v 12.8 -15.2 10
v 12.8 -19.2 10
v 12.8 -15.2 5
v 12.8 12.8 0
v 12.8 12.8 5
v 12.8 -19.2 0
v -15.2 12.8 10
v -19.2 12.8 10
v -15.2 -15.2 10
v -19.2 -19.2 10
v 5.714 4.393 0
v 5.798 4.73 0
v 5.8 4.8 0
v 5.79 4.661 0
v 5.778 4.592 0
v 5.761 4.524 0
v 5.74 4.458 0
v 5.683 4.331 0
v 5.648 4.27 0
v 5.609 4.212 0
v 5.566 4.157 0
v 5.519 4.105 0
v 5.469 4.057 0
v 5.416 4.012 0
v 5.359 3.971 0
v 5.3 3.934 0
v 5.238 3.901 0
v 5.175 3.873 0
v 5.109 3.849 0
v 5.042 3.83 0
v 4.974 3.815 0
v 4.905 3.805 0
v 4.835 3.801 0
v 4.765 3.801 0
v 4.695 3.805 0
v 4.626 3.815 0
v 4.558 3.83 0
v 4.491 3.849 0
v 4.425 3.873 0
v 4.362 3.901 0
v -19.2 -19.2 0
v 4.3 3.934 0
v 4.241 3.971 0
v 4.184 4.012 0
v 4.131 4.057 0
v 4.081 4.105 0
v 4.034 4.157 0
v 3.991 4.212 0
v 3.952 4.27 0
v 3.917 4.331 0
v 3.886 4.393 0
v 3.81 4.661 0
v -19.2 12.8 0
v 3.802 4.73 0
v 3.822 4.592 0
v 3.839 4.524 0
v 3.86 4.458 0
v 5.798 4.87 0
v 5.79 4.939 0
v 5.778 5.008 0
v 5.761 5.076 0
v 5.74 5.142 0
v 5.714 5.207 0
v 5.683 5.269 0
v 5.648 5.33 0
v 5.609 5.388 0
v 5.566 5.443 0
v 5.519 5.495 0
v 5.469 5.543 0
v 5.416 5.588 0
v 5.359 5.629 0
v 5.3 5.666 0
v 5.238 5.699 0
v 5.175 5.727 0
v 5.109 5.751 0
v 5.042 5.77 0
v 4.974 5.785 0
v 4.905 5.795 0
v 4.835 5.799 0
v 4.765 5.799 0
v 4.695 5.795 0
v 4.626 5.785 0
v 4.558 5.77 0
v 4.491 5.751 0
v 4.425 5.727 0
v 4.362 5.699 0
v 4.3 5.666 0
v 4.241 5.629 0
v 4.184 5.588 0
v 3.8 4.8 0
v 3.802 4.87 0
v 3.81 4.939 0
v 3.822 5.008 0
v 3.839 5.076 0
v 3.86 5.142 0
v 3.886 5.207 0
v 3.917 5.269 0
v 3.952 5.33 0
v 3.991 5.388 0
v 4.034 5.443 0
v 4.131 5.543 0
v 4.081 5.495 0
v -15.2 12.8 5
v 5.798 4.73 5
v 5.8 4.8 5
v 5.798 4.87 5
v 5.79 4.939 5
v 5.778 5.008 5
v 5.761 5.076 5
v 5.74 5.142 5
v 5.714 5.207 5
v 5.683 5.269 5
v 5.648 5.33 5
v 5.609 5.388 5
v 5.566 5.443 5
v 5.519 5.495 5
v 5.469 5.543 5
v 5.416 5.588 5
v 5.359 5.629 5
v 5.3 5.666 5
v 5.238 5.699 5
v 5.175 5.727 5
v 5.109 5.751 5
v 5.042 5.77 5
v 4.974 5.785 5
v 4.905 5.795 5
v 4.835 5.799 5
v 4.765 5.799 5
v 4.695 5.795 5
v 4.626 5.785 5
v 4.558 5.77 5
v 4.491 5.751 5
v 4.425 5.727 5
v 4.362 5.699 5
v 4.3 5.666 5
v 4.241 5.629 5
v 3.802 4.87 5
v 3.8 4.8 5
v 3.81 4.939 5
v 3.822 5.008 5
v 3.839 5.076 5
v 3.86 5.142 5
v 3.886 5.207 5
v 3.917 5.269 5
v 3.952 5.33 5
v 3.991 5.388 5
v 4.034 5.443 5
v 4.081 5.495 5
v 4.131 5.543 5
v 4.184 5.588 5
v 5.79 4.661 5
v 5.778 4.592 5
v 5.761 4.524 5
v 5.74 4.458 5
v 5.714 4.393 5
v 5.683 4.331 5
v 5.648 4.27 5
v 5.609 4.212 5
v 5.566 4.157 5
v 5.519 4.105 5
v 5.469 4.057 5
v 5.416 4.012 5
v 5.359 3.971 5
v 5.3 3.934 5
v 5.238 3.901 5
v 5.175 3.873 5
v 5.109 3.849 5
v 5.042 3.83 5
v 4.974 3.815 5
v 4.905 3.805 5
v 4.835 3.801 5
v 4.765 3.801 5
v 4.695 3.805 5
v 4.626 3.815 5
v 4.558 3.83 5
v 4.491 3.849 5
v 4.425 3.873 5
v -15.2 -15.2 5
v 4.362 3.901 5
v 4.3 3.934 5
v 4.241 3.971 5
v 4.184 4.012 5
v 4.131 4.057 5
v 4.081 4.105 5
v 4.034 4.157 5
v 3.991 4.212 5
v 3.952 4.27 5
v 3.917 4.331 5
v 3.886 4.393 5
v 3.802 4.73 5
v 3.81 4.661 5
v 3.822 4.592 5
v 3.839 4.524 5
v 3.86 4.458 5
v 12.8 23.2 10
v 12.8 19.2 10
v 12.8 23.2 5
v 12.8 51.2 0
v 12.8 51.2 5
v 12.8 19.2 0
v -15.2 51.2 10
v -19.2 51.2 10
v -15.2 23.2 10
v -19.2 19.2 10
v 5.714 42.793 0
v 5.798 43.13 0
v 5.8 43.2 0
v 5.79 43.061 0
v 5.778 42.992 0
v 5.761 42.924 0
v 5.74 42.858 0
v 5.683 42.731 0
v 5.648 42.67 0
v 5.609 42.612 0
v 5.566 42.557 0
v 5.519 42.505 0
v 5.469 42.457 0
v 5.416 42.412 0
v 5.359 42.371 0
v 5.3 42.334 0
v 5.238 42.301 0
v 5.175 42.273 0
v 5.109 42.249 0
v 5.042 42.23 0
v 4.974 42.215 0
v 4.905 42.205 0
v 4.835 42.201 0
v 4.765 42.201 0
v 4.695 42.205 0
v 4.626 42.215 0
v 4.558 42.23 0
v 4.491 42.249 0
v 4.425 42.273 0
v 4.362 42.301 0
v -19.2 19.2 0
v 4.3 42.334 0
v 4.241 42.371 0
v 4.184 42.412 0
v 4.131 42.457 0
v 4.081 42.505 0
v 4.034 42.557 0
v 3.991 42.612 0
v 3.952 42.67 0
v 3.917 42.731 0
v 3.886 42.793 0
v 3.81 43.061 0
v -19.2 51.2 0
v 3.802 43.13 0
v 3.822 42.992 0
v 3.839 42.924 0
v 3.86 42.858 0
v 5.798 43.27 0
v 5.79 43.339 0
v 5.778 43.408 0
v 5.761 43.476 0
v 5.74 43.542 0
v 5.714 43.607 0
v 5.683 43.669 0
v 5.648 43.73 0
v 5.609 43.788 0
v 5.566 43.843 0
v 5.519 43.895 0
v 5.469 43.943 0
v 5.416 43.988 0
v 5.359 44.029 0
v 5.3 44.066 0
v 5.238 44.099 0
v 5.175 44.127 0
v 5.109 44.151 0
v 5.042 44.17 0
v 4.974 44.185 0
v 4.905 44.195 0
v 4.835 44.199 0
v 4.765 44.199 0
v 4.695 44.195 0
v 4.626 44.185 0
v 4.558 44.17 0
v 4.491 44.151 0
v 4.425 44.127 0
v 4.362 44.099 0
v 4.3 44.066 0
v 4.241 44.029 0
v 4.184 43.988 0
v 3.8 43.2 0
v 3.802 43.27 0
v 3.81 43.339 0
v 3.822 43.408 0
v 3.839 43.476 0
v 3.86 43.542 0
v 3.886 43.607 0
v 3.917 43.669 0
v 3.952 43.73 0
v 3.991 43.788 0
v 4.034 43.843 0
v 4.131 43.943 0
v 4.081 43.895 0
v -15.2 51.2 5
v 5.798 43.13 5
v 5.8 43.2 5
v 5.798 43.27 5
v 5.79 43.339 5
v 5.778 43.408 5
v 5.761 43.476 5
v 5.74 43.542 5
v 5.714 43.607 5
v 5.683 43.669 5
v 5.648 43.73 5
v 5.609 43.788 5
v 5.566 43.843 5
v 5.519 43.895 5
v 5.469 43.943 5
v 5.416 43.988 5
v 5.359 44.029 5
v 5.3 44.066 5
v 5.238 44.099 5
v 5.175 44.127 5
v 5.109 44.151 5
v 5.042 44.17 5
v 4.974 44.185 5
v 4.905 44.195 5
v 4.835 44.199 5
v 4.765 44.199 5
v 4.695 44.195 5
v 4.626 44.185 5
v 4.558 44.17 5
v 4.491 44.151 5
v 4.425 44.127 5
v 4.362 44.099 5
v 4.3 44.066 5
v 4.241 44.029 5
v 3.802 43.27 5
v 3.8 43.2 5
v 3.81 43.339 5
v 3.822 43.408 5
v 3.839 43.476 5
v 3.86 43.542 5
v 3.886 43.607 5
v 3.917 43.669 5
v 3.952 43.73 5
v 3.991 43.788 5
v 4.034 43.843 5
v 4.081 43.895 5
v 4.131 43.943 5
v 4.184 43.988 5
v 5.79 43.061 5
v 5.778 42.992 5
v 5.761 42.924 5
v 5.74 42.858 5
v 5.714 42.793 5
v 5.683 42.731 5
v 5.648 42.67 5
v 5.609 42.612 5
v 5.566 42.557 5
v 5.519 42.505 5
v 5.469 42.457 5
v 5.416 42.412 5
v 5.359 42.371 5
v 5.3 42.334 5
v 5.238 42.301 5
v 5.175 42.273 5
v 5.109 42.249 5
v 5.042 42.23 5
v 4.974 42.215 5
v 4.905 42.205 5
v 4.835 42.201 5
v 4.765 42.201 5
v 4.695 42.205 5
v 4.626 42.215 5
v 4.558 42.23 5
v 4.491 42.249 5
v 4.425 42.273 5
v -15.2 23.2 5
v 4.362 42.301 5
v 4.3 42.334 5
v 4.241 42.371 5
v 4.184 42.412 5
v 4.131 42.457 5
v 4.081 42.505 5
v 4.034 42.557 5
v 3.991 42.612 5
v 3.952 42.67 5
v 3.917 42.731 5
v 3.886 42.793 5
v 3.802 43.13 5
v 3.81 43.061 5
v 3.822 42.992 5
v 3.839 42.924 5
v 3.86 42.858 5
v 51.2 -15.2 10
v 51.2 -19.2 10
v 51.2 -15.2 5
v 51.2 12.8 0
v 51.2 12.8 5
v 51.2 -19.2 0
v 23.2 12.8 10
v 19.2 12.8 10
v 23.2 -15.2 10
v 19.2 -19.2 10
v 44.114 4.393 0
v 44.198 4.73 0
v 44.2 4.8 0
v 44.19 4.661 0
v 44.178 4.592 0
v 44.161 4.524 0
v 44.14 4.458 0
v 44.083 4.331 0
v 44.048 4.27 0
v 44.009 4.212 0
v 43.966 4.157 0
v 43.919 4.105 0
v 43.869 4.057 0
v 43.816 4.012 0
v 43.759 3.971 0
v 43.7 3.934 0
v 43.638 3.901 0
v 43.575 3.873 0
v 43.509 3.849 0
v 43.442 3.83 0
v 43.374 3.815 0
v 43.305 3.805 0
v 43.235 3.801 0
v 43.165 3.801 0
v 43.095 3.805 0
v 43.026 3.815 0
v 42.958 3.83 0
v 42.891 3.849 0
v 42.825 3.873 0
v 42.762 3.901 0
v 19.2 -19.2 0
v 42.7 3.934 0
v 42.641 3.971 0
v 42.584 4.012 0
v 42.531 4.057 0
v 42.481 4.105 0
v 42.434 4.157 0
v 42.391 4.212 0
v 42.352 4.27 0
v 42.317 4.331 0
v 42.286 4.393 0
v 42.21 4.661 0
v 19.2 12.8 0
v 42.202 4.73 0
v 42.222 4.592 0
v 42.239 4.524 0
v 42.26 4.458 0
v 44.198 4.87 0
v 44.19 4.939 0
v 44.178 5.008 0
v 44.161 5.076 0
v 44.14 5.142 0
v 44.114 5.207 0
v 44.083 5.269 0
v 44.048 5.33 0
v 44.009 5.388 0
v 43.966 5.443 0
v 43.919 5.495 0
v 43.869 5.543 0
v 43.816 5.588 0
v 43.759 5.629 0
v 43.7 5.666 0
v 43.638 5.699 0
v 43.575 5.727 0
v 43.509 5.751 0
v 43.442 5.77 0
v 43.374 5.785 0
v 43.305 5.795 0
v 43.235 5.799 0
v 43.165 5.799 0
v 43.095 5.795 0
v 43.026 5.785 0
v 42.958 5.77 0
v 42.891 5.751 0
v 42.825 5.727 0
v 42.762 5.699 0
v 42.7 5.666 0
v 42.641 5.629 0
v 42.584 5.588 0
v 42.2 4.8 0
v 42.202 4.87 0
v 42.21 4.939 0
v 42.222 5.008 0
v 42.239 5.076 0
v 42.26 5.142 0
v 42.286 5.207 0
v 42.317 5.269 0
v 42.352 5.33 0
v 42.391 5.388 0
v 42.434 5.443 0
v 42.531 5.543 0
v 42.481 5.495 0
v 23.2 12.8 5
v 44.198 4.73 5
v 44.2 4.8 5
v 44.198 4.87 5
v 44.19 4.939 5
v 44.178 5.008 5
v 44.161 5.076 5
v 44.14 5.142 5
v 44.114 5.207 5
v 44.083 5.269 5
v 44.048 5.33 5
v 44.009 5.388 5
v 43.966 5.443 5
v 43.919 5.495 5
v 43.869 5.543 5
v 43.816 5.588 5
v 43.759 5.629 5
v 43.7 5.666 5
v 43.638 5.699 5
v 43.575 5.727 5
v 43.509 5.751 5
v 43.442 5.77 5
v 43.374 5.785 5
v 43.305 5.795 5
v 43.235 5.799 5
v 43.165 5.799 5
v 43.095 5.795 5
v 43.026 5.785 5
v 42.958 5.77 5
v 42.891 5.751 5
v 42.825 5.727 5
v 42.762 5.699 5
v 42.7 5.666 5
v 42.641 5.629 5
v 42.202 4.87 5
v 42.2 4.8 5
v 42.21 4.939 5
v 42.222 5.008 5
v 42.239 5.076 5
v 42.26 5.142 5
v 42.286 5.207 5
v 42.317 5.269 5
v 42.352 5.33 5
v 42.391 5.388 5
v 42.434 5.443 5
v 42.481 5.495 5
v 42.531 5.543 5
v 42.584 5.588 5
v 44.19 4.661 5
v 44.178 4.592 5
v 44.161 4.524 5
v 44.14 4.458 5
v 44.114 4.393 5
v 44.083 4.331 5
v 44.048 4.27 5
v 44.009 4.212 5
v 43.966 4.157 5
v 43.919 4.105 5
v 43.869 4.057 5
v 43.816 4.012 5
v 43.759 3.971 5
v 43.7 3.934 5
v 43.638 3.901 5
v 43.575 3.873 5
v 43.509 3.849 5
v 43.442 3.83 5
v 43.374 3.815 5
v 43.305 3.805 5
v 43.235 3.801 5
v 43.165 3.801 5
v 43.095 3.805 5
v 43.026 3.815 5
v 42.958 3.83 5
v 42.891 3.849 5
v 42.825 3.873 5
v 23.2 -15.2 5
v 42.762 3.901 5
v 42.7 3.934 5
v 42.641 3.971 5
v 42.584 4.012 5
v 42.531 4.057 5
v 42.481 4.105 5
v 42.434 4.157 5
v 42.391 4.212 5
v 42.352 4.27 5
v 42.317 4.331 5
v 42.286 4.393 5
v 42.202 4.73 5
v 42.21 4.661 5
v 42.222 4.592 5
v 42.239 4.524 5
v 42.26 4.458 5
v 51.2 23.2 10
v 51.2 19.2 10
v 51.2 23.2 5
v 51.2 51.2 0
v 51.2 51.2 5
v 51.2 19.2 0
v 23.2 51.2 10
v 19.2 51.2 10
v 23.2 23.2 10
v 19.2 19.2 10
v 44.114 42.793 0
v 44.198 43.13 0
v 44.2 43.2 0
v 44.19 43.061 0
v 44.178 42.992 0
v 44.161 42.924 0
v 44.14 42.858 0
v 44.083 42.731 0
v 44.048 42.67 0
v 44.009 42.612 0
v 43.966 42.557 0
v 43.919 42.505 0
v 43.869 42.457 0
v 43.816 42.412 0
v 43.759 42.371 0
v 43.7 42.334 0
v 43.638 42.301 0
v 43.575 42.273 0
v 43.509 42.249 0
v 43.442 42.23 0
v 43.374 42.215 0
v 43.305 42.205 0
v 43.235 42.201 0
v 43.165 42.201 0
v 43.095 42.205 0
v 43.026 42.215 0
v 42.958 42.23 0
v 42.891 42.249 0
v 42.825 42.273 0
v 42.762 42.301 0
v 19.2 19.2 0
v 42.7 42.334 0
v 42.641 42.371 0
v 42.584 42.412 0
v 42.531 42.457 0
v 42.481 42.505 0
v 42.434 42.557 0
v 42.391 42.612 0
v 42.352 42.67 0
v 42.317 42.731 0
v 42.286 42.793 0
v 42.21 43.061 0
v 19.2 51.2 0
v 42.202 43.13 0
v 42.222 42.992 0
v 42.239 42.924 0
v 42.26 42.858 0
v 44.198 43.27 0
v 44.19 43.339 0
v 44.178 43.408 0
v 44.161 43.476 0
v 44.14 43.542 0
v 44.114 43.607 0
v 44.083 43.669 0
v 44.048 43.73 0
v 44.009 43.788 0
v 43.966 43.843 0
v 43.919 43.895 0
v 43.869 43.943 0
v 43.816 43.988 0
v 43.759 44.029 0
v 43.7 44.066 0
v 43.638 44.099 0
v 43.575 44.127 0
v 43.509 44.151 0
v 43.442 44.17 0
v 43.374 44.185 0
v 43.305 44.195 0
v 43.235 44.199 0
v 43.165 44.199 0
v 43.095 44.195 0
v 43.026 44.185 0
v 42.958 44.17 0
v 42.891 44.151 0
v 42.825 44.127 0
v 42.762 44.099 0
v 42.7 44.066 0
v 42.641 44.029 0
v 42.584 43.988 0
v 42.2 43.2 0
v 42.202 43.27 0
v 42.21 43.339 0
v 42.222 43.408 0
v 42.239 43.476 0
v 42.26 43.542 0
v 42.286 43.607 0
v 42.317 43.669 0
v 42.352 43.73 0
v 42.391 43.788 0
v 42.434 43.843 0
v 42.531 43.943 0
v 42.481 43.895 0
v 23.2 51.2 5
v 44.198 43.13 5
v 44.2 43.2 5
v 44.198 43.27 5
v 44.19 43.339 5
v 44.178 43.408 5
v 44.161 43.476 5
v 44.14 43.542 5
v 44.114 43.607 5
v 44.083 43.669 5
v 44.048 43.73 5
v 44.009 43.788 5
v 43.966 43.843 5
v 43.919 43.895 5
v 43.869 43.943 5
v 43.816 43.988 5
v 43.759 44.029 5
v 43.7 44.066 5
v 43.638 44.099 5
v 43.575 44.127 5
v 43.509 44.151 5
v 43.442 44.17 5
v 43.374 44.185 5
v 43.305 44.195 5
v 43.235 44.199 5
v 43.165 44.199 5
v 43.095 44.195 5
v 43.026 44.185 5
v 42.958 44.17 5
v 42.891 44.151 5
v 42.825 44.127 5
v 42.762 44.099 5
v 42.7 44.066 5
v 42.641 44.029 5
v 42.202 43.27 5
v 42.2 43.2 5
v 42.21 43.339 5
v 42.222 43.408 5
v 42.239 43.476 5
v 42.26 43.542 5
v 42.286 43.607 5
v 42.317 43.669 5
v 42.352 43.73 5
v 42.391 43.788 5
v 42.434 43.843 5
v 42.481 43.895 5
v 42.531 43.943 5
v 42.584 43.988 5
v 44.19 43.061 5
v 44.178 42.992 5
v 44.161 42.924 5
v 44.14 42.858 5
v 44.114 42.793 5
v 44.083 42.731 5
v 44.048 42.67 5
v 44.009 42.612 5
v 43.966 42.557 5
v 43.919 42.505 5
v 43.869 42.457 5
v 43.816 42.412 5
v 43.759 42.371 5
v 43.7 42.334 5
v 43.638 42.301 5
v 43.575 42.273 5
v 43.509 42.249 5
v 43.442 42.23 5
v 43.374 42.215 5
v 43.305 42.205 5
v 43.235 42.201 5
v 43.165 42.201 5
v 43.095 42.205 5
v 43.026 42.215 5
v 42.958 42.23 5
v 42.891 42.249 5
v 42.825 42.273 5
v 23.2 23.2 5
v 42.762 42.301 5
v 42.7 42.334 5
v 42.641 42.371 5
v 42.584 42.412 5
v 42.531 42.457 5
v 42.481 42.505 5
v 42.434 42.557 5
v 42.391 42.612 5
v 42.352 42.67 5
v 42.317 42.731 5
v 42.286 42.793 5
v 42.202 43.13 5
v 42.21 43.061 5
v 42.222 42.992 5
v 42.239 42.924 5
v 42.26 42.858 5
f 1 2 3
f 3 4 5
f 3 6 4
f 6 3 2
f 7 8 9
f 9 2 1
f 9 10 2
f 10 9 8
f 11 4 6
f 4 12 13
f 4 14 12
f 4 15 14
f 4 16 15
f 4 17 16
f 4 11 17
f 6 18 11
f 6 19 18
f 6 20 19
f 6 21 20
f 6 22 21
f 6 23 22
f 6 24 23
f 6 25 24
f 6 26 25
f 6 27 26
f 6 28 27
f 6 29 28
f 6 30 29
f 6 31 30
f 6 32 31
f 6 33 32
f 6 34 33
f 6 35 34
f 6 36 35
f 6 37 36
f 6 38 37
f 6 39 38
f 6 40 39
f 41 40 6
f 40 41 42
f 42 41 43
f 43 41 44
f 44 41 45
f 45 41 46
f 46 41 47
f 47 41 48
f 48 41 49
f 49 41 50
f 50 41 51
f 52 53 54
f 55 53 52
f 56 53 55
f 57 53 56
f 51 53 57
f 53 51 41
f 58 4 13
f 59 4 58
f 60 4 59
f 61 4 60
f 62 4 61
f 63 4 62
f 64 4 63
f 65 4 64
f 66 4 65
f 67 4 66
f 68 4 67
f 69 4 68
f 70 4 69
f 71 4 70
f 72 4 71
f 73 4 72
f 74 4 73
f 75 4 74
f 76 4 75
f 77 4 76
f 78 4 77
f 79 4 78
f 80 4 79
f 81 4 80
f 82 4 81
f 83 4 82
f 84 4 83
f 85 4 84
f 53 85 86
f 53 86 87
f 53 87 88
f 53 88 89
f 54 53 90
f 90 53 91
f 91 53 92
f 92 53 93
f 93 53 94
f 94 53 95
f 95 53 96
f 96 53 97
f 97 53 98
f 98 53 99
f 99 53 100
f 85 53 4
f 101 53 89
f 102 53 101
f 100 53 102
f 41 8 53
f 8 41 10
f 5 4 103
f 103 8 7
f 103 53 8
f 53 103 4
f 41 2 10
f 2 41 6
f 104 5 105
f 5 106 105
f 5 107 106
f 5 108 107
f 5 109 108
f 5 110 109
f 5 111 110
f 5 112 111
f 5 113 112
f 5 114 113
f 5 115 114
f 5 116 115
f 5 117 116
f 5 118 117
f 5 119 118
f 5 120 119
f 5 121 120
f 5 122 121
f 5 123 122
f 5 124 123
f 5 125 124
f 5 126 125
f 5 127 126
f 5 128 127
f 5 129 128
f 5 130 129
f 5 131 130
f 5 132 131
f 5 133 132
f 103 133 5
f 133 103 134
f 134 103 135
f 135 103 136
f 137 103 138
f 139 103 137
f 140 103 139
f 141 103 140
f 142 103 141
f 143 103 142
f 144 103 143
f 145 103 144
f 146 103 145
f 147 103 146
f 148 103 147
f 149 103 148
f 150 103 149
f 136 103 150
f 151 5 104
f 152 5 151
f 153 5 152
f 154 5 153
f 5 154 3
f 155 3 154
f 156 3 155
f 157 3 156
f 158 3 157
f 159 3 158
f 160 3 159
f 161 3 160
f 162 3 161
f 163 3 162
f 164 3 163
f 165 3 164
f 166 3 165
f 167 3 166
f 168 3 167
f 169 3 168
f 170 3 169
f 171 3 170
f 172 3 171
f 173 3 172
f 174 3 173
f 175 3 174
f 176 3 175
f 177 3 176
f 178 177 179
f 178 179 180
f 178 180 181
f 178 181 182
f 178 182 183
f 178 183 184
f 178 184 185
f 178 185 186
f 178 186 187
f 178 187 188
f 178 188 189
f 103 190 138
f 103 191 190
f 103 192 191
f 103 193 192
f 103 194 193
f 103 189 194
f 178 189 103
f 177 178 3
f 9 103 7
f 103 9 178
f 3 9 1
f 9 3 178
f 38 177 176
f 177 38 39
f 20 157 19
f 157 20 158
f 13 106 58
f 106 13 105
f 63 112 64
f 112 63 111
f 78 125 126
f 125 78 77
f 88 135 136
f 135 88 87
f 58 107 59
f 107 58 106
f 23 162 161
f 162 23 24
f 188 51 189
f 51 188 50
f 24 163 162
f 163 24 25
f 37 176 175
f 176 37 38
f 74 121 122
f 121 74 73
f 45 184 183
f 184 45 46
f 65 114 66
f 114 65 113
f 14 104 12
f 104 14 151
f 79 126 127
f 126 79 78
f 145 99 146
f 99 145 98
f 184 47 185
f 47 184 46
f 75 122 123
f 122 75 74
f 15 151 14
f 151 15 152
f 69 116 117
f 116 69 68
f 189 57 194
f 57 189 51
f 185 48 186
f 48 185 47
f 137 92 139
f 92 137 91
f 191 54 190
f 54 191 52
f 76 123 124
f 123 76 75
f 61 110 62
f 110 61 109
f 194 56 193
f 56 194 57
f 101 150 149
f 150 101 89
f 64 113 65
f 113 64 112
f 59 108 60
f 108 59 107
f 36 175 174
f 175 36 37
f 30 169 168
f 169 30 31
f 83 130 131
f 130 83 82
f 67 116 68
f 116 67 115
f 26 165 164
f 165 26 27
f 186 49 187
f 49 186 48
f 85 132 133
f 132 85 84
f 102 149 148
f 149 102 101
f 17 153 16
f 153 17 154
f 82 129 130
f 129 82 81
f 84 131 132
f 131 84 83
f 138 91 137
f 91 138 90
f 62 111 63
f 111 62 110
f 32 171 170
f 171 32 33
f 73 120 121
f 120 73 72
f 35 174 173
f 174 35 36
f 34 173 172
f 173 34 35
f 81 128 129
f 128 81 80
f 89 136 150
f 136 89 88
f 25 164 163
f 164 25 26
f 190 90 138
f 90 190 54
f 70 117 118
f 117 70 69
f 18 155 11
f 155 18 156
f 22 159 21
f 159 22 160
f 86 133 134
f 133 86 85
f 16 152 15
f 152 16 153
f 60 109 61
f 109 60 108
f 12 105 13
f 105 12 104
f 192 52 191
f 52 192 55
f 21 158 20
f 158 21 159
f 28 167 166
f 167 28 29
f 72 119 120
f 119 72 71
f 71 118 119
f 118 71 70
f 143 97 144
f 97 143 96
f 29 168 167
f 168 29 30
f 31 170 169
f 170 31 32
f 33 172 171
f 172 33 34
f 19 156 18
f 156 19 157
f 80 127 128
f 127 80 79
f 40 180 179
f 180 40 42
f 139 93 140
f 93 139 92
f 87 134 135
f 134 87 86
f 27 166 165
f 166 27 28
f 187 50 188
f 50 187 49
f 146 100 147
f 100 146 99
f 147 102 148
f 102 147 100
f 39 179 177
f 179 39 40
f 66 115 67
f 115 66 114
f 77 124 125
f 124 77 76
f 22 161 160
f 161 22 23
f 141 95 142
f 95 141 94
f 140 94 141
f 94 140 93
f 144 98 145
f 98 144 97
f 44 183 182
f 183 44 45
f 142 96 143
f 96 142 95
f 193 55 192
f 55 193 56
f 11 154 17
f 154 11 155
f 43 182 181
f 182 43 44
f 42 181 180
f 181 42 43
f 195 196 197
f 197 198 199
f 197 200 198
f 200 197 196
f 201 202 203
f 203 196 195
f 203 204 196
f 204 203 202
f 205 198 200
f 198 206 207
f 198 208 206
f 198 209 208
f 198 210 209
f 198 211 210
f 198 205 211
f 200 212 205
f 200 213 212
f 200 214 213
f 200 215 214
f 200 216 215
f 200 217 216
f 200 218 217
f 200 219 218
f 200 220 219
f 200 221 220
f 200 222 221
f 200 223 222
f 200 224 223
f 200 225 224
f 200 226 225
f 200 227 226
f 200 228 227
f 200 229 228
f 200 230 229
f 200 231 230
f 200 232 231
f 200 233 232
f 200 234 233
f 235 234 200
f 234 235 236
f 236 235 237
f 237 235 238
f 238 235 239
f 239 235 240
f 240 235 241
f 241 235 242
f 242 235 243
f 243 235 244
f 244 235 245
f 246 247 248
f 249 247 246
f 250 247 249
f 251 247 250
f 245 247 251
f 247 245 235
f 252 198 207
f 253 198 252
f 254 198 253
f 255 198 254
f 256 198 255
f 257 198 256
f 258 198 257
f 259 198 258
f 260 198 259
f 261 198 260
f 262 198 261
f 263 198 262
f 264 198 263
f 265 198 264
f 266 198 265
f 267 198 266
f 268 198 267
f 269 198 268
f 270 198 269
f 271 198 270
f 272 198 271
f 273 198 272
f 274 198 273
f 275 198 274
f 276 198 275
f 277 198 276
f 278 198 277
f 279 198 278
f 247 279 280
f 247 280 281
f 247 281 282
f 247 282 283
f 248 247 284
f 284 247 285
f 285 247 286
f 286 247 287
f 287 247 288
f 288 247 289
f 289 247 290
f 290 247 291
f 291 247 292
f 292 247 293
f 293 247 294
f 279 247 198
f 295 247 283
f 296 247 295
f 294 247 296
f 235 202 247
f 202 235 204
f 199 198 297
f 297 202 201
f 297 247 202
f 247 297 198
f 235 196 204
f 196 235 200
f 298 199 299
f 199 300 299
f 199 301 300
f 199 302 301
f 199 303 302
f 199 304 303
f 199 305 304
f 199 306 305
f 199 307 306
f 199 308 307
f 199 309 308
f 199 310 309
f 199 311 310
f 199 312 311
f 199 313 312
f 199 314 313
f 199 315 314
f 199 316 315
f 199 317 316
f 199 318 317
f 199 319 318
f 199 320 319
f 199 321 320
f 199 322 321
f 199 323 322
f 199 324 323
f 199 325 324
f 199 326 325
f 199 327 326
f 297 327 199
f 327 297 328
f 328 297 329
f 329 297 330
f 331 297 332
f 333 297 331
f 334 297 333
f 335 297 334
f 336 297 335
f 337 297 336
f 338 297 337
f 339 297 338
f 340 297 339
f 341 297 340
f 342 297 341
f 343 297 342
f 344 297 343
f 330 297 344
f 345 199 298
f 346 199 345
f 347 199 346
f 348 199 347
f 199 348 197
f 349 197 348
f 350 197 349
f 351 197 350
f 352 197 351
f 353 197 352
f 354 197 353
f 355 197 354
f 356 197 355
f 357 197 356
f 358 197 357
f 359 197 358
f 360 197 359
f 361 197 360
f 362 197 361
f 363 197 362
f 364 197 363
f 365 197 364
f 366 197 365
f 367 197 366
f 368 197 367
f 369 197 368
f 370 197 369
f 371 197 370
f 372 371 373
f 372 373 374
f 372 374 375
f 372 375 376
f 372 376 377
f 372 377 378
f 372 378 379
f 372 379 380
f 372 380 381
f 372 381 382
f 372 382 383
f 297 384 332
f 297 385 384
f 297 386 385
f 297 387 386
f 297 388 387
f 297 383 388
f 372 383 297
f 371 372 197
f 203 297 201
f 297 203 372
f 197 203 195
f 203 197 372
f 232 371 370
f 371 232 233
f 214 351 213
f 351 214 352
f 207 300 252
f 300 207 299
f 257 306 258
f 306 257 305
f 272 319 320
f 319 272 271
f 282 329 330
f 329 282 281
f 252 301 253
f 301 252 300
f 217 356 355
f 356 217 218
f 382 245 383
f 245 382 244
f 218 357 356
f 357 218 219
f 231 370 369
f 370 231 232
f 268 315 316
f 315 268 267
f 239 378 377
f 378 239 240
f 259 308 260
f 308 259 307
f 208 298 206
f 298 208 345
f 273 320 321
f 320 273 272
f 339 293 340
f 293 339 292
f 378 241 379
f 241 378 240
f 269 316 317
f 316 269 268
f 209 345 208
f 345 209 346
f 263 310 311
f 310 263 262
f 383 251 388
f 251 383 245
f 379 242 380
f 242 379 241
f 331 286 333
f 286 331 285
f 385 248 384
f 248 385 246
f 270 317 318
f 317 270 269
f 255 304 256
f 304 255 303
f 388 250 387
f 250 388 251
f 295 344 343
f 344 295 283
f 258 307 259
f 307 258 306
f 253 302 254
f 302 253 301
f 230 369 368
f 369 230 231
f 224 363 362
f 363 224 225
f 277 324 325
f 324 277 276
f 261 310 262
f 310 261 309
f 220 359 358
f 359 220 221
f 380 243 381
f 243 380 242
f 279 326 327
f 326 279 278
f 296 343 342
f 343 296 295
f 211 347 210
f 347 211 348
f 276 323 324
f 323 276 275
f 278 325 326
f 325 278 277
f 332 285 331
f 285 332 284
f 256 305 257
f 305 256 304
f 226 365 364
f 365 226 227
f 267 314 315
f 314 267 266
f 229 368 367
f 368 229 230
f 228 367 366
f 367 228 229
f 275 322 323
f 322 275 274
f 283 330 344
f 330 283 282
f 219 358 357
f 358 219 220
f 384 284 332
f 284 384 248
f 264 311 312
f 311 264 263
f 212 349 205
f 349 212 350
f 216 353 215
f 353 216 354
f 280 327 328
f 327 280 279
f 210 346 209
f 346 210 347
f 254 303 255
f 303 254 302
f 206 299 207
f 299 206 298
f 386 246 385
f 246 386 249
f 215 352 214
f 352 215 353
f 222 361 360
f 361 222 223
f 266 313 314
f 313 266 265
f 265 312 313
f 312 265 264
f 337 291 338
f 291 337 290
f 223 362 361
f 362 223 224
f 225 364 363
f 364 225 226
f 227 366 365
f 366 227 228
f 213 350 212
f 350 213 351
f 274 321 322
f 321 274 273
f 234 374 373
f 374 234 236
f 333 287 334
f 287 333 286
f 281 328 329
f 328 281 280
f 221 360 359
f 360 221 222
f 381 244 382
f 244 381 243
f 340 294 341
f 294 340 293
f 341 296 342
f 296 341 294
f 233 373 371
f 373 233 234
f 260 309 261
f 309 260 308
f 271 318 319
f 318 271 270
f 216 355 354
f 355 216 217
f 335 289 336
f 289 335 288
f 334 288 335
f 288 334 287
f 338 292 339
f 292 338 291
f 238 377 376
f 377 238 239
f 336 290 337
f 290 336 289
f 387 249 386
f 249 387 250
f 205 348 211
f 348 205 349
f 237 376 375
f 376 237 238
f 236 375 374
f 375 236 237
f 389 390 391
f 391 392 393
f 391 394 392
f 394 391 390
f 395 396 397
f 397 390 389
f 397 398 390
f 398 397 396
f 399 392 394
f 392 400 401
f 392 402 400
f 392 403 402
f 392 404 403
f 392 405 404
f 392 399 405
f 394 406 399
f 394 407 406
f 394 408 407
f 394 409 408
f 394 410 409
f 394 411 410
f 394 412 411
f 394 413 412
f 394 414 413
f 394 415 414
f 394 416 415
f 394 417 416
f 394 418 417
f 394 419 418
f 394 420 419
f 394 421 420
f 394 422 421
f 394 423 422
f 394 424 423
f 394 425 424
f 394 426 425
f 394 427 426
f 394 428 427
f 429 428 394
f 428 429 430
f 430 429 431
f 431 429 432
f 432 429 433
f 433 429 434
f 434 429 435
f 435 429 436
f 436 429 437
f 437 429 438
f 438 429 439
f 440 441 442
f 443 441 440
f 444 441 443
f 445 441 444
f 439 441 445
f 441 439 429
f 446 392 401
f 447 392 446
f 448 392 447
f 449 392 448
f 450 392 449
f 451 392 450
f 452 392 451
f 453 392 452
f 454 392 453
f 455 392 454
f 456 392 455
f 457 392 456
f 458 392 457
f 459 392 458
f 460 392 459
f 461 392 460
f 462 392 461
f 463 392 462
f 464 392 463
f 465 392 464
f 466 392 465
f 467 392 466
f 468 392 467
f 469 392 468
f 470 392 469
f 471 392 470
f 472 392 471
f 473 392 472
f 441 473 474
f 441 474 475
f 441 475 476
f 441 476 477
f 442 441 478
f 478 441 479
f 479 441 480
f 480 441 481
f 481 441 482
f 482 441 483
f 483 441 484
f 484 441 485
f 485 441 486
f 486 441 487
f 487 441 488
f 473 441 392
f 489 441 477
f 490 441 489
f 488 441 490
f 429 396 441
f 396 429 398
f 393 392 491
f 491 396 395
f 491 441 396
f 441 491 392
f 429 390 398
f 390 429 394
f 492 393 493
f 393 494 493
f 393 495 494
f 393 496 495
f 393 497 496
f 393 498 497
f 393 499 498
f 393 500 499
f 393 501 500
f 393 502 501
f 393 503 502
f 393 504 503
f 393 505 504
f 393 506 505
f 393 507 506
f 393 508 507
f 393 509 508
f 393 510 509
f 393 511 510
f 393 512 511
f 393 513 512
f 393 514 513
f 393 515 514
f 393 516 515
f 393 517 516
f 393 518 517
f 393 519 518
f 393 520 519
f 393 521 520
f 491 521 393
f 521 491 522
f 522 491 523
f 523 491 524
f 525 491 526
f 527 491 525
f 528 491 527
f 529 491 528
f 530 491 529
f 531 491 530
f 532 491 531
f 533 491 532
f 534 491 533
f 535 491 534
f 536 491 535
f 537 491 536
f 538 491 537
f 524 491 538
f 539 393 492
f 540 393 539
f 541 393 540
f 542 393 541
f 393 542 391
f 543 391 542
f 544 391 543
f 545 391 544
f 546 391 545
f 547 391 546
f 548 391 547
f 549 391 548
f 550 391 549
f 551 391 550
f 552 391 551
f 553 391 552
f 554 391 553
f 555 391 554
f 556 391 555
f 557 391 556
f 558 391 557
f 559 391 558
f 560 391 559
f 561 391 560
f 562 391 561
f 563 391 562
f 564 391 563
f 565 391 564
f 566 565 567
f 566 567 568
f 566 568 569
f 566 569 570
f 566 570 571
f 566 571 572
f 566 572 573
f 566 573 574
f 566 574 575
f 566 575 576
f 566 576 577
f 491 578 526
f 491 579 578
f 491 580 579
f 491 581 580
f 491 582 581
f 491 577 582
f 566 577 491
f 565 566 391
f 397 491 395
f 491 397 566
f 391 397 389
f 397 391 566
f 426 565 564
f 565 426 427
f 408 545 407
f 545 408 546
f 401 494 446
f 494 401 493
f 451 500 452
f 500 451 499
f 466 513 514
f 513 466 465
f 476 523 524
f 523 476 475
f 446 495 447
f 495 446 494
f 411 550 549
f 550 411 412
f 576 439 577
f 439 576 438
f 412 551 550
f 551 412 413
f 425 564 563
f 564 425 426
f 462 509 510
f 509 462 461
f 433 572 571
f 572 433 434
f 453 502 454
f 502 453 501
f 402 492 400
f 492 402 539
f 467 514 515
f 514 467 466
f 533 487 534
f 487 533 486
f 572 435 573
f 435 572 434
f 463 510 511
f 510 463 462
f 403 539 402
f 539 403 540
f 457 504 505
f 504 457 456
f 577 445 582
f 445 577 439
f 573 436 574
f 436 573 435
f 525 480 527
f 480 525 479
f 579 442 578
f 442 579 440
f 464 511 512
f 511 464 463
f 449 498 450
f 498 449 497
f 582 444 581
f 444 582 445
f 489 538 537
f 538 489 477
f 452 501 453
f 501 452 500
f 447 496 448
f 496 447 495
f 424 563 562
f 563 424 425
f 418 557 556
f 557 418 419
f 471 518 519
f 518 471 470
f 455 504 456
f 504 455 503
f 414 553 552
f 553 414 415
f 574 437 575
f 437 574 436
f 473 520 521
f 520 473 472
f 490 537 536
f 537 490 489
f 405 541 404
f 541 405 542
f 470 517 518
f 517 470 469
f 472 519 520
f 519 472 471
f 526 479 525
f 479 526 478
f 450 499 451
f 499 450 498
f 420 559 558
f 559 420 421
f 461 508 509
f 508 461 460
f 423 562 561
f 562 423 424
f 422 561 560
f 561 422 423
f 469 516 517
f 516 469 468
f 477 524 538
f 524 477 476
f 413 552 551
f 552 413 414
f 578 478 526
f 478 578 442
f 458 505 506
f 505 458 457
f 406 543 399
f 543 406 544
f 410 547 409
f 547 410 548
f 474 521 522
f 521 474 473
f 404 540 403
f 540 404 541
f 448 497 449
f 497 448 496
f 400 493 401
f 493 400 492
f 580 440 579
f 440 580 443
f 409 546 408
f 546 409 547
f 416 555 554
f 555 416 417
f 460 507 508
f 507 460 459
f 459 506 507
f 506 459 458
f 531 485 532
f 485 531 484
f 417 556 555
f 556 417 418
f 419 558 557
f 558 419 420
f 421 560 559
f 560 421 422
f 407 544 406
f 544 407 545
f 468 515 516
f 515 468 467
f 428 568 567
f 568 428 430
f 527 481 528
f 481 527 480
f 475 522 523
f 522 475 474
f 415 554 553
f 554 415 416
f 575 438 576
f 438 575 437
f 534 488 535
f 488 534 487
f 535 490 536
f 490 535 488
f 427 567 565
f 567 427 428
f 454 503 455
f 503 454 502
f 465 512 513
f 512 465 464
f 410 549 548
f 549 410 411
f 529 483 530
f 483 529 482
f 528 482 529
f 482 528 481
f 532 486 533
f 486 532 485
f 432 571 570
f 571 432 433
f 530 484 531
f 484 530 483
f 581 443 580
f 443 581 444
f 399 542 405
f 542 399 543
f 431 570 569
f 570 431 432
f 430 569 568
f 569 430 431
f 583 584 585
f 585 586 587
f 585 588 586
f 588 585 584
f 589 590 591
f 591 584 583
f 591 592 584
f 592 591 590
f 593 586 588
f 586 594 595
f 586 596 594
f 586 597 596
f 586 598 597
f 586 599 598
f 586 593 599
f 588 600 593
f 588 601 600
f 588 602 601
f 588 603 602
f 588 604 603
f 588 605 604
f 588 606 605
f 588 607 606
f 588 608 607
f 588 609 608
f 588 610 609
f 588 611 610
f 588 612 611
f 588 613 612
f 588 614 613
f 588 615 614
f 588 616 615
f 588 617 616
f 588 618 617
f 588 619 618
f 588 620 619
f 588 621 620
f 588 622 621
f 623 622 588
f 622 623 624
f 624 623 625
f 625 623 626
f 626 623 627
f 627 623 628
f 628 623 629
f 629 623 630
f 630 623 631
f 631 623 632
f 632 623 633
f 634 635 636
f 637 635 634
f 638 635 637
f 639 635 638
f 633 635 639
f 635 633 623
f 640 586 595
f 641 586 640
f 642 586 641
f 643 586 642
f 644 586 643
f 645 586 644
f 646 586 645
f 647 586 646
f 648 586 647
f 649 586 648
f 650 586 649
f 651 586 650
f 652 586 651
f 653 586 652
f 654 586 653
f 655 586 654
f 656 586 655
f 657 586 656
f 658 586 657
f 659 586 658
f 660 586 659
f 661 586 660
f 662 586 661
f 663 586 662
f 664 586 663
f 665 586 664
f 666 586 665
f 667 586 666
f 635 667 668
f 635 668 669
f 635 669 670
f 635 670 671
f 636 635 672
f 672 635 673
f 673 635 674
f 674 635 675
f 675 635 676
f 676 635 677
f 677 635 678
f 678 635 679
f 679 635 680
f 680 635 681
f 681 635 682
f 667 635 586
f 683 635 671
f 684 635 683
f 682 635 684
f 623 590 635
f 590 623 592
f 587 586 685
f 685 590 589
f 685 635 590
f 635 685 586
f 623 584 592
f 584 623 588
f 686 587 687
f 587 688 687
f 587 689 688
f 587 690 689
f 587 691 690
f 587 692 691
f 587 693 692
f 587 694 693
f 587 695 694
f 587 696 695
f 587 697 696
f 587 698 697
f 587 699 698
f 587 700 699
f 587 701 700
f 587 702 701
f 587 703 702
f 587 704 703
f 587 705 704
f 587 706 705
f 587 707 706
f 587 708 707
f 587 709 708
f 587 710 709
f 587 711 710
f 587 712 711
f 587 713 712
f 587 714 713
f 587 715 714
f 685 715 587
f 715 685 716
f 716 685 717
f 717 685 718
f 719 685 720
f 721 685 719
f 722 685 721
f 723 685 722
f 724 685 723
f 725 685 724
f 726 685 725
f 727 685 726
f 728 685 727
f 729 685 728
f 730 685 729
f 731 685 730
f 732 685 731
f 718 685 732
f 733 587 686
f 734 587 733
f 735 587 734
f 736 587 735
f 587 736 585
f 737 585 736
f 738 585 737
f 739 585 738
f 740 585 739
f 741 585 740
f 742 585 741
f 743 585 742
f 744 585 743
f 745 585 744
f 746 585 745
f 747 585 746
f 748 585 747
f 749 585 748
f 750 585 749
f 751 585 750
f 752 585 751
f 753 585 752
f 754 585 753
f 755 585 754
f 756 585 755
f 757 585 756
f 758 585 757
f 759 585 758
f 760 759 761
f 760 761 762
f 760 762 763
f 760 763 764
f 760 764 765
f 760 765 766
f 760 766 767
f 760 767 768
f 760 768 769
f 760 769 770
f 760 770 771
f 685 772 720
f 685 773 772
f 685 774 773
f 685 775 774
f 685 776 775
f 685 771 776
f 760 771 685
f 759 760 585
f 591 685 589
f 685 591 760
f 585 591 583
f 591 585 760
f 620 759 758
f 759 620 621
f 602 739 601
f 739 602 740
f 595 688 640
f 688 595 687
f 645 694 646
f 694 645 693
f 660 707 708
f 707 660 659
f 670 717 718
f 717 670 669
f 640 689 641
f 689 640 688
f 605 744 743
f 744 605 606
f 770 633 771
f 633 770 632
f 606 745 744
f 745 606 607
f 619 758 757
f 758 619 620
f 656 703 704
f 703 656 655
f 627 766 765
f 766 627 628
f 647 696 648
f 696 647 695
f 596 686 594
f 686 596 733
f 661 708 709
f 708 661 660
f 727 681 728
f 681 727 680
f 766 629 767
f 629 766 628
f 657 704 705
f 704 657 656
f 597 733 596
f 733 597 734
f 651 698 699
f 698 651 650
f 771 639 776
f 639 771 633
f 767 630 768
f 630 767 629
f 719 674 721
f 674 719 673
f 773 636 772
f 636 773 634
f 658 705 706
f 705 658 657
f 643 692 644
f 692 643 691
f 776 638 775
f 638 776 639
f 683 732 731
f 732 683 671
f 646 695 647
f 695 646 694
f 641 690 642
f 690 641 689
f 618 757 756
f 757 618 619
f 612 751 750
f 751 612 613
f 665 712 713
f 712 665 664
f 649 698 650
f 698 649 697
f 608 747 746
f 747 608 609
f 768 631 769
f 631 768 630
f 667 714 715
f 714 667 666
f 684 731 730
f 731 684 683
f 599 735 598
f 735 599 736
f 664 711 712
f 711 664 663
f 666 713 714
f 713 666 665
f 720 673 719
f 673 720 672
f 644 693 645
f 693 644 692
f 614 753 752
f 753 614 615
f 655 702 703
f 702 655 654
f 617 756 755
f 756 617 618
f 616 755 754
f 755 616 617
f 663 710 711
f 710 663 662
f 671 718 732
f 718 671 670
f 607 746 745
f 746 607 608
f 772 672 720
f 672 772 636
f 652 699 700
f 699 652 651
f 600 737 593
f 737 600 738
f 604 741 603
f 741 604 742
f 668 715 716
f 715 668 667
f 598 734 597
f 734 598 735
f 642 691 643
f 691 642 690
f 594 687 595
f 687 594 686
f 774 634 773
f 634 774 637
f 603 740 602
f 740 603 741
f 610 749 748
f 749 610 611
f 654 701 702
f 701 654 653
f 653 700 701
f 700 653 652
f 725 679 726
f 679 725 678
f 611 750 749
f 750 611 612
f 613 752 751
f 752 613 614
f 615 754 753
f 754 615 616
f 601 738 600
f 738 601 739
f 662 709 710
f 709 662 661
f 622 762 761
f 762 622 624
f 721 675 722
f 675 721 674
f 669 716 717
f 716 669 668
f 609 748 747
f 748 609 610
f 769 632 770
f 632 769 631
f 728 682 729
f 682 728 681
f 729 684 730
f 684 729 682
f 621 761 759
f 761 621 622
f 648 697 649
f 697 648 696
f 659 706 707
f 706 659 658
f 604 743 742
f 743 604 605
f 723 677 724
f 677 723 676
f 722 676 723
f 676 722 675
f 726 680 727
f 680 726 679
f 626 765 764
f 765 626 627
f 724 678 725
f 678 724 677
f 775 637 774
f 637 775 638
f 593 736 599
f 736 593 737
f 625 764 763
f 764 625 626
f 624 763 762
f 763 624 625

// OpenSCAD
FRAME_THICKNESS =   8/2; // to 9

ATOM = 0.01;

HOLE_POSITION = 20+4;
HOLE_DIAMETER = 2;
GUIDE_SIZE = 28 +4;

$fn= 90;

module piece() {
    difference() {
        cube([GUIDE_SIZE, GUIDE_SIZE, 10]);

        translate([FRAME_THICKNESS, FRAME_THICKNESS, 5])
        cube([GUIDE_SIZE, GUIDE_SIZE, 10]);
        
        translate([HOLE_POSITION, HOLE_POSITION, 0])
        cylinder(d=HOLE_DIAMETER, h=40, center=true);
    }
}

for (x=[-1, 1])
    for (y=[-1, 1])
        translate([x*GUIDE_SIZE*.6, y*GUIDE_SIZE*.6, 0])
        piece();
